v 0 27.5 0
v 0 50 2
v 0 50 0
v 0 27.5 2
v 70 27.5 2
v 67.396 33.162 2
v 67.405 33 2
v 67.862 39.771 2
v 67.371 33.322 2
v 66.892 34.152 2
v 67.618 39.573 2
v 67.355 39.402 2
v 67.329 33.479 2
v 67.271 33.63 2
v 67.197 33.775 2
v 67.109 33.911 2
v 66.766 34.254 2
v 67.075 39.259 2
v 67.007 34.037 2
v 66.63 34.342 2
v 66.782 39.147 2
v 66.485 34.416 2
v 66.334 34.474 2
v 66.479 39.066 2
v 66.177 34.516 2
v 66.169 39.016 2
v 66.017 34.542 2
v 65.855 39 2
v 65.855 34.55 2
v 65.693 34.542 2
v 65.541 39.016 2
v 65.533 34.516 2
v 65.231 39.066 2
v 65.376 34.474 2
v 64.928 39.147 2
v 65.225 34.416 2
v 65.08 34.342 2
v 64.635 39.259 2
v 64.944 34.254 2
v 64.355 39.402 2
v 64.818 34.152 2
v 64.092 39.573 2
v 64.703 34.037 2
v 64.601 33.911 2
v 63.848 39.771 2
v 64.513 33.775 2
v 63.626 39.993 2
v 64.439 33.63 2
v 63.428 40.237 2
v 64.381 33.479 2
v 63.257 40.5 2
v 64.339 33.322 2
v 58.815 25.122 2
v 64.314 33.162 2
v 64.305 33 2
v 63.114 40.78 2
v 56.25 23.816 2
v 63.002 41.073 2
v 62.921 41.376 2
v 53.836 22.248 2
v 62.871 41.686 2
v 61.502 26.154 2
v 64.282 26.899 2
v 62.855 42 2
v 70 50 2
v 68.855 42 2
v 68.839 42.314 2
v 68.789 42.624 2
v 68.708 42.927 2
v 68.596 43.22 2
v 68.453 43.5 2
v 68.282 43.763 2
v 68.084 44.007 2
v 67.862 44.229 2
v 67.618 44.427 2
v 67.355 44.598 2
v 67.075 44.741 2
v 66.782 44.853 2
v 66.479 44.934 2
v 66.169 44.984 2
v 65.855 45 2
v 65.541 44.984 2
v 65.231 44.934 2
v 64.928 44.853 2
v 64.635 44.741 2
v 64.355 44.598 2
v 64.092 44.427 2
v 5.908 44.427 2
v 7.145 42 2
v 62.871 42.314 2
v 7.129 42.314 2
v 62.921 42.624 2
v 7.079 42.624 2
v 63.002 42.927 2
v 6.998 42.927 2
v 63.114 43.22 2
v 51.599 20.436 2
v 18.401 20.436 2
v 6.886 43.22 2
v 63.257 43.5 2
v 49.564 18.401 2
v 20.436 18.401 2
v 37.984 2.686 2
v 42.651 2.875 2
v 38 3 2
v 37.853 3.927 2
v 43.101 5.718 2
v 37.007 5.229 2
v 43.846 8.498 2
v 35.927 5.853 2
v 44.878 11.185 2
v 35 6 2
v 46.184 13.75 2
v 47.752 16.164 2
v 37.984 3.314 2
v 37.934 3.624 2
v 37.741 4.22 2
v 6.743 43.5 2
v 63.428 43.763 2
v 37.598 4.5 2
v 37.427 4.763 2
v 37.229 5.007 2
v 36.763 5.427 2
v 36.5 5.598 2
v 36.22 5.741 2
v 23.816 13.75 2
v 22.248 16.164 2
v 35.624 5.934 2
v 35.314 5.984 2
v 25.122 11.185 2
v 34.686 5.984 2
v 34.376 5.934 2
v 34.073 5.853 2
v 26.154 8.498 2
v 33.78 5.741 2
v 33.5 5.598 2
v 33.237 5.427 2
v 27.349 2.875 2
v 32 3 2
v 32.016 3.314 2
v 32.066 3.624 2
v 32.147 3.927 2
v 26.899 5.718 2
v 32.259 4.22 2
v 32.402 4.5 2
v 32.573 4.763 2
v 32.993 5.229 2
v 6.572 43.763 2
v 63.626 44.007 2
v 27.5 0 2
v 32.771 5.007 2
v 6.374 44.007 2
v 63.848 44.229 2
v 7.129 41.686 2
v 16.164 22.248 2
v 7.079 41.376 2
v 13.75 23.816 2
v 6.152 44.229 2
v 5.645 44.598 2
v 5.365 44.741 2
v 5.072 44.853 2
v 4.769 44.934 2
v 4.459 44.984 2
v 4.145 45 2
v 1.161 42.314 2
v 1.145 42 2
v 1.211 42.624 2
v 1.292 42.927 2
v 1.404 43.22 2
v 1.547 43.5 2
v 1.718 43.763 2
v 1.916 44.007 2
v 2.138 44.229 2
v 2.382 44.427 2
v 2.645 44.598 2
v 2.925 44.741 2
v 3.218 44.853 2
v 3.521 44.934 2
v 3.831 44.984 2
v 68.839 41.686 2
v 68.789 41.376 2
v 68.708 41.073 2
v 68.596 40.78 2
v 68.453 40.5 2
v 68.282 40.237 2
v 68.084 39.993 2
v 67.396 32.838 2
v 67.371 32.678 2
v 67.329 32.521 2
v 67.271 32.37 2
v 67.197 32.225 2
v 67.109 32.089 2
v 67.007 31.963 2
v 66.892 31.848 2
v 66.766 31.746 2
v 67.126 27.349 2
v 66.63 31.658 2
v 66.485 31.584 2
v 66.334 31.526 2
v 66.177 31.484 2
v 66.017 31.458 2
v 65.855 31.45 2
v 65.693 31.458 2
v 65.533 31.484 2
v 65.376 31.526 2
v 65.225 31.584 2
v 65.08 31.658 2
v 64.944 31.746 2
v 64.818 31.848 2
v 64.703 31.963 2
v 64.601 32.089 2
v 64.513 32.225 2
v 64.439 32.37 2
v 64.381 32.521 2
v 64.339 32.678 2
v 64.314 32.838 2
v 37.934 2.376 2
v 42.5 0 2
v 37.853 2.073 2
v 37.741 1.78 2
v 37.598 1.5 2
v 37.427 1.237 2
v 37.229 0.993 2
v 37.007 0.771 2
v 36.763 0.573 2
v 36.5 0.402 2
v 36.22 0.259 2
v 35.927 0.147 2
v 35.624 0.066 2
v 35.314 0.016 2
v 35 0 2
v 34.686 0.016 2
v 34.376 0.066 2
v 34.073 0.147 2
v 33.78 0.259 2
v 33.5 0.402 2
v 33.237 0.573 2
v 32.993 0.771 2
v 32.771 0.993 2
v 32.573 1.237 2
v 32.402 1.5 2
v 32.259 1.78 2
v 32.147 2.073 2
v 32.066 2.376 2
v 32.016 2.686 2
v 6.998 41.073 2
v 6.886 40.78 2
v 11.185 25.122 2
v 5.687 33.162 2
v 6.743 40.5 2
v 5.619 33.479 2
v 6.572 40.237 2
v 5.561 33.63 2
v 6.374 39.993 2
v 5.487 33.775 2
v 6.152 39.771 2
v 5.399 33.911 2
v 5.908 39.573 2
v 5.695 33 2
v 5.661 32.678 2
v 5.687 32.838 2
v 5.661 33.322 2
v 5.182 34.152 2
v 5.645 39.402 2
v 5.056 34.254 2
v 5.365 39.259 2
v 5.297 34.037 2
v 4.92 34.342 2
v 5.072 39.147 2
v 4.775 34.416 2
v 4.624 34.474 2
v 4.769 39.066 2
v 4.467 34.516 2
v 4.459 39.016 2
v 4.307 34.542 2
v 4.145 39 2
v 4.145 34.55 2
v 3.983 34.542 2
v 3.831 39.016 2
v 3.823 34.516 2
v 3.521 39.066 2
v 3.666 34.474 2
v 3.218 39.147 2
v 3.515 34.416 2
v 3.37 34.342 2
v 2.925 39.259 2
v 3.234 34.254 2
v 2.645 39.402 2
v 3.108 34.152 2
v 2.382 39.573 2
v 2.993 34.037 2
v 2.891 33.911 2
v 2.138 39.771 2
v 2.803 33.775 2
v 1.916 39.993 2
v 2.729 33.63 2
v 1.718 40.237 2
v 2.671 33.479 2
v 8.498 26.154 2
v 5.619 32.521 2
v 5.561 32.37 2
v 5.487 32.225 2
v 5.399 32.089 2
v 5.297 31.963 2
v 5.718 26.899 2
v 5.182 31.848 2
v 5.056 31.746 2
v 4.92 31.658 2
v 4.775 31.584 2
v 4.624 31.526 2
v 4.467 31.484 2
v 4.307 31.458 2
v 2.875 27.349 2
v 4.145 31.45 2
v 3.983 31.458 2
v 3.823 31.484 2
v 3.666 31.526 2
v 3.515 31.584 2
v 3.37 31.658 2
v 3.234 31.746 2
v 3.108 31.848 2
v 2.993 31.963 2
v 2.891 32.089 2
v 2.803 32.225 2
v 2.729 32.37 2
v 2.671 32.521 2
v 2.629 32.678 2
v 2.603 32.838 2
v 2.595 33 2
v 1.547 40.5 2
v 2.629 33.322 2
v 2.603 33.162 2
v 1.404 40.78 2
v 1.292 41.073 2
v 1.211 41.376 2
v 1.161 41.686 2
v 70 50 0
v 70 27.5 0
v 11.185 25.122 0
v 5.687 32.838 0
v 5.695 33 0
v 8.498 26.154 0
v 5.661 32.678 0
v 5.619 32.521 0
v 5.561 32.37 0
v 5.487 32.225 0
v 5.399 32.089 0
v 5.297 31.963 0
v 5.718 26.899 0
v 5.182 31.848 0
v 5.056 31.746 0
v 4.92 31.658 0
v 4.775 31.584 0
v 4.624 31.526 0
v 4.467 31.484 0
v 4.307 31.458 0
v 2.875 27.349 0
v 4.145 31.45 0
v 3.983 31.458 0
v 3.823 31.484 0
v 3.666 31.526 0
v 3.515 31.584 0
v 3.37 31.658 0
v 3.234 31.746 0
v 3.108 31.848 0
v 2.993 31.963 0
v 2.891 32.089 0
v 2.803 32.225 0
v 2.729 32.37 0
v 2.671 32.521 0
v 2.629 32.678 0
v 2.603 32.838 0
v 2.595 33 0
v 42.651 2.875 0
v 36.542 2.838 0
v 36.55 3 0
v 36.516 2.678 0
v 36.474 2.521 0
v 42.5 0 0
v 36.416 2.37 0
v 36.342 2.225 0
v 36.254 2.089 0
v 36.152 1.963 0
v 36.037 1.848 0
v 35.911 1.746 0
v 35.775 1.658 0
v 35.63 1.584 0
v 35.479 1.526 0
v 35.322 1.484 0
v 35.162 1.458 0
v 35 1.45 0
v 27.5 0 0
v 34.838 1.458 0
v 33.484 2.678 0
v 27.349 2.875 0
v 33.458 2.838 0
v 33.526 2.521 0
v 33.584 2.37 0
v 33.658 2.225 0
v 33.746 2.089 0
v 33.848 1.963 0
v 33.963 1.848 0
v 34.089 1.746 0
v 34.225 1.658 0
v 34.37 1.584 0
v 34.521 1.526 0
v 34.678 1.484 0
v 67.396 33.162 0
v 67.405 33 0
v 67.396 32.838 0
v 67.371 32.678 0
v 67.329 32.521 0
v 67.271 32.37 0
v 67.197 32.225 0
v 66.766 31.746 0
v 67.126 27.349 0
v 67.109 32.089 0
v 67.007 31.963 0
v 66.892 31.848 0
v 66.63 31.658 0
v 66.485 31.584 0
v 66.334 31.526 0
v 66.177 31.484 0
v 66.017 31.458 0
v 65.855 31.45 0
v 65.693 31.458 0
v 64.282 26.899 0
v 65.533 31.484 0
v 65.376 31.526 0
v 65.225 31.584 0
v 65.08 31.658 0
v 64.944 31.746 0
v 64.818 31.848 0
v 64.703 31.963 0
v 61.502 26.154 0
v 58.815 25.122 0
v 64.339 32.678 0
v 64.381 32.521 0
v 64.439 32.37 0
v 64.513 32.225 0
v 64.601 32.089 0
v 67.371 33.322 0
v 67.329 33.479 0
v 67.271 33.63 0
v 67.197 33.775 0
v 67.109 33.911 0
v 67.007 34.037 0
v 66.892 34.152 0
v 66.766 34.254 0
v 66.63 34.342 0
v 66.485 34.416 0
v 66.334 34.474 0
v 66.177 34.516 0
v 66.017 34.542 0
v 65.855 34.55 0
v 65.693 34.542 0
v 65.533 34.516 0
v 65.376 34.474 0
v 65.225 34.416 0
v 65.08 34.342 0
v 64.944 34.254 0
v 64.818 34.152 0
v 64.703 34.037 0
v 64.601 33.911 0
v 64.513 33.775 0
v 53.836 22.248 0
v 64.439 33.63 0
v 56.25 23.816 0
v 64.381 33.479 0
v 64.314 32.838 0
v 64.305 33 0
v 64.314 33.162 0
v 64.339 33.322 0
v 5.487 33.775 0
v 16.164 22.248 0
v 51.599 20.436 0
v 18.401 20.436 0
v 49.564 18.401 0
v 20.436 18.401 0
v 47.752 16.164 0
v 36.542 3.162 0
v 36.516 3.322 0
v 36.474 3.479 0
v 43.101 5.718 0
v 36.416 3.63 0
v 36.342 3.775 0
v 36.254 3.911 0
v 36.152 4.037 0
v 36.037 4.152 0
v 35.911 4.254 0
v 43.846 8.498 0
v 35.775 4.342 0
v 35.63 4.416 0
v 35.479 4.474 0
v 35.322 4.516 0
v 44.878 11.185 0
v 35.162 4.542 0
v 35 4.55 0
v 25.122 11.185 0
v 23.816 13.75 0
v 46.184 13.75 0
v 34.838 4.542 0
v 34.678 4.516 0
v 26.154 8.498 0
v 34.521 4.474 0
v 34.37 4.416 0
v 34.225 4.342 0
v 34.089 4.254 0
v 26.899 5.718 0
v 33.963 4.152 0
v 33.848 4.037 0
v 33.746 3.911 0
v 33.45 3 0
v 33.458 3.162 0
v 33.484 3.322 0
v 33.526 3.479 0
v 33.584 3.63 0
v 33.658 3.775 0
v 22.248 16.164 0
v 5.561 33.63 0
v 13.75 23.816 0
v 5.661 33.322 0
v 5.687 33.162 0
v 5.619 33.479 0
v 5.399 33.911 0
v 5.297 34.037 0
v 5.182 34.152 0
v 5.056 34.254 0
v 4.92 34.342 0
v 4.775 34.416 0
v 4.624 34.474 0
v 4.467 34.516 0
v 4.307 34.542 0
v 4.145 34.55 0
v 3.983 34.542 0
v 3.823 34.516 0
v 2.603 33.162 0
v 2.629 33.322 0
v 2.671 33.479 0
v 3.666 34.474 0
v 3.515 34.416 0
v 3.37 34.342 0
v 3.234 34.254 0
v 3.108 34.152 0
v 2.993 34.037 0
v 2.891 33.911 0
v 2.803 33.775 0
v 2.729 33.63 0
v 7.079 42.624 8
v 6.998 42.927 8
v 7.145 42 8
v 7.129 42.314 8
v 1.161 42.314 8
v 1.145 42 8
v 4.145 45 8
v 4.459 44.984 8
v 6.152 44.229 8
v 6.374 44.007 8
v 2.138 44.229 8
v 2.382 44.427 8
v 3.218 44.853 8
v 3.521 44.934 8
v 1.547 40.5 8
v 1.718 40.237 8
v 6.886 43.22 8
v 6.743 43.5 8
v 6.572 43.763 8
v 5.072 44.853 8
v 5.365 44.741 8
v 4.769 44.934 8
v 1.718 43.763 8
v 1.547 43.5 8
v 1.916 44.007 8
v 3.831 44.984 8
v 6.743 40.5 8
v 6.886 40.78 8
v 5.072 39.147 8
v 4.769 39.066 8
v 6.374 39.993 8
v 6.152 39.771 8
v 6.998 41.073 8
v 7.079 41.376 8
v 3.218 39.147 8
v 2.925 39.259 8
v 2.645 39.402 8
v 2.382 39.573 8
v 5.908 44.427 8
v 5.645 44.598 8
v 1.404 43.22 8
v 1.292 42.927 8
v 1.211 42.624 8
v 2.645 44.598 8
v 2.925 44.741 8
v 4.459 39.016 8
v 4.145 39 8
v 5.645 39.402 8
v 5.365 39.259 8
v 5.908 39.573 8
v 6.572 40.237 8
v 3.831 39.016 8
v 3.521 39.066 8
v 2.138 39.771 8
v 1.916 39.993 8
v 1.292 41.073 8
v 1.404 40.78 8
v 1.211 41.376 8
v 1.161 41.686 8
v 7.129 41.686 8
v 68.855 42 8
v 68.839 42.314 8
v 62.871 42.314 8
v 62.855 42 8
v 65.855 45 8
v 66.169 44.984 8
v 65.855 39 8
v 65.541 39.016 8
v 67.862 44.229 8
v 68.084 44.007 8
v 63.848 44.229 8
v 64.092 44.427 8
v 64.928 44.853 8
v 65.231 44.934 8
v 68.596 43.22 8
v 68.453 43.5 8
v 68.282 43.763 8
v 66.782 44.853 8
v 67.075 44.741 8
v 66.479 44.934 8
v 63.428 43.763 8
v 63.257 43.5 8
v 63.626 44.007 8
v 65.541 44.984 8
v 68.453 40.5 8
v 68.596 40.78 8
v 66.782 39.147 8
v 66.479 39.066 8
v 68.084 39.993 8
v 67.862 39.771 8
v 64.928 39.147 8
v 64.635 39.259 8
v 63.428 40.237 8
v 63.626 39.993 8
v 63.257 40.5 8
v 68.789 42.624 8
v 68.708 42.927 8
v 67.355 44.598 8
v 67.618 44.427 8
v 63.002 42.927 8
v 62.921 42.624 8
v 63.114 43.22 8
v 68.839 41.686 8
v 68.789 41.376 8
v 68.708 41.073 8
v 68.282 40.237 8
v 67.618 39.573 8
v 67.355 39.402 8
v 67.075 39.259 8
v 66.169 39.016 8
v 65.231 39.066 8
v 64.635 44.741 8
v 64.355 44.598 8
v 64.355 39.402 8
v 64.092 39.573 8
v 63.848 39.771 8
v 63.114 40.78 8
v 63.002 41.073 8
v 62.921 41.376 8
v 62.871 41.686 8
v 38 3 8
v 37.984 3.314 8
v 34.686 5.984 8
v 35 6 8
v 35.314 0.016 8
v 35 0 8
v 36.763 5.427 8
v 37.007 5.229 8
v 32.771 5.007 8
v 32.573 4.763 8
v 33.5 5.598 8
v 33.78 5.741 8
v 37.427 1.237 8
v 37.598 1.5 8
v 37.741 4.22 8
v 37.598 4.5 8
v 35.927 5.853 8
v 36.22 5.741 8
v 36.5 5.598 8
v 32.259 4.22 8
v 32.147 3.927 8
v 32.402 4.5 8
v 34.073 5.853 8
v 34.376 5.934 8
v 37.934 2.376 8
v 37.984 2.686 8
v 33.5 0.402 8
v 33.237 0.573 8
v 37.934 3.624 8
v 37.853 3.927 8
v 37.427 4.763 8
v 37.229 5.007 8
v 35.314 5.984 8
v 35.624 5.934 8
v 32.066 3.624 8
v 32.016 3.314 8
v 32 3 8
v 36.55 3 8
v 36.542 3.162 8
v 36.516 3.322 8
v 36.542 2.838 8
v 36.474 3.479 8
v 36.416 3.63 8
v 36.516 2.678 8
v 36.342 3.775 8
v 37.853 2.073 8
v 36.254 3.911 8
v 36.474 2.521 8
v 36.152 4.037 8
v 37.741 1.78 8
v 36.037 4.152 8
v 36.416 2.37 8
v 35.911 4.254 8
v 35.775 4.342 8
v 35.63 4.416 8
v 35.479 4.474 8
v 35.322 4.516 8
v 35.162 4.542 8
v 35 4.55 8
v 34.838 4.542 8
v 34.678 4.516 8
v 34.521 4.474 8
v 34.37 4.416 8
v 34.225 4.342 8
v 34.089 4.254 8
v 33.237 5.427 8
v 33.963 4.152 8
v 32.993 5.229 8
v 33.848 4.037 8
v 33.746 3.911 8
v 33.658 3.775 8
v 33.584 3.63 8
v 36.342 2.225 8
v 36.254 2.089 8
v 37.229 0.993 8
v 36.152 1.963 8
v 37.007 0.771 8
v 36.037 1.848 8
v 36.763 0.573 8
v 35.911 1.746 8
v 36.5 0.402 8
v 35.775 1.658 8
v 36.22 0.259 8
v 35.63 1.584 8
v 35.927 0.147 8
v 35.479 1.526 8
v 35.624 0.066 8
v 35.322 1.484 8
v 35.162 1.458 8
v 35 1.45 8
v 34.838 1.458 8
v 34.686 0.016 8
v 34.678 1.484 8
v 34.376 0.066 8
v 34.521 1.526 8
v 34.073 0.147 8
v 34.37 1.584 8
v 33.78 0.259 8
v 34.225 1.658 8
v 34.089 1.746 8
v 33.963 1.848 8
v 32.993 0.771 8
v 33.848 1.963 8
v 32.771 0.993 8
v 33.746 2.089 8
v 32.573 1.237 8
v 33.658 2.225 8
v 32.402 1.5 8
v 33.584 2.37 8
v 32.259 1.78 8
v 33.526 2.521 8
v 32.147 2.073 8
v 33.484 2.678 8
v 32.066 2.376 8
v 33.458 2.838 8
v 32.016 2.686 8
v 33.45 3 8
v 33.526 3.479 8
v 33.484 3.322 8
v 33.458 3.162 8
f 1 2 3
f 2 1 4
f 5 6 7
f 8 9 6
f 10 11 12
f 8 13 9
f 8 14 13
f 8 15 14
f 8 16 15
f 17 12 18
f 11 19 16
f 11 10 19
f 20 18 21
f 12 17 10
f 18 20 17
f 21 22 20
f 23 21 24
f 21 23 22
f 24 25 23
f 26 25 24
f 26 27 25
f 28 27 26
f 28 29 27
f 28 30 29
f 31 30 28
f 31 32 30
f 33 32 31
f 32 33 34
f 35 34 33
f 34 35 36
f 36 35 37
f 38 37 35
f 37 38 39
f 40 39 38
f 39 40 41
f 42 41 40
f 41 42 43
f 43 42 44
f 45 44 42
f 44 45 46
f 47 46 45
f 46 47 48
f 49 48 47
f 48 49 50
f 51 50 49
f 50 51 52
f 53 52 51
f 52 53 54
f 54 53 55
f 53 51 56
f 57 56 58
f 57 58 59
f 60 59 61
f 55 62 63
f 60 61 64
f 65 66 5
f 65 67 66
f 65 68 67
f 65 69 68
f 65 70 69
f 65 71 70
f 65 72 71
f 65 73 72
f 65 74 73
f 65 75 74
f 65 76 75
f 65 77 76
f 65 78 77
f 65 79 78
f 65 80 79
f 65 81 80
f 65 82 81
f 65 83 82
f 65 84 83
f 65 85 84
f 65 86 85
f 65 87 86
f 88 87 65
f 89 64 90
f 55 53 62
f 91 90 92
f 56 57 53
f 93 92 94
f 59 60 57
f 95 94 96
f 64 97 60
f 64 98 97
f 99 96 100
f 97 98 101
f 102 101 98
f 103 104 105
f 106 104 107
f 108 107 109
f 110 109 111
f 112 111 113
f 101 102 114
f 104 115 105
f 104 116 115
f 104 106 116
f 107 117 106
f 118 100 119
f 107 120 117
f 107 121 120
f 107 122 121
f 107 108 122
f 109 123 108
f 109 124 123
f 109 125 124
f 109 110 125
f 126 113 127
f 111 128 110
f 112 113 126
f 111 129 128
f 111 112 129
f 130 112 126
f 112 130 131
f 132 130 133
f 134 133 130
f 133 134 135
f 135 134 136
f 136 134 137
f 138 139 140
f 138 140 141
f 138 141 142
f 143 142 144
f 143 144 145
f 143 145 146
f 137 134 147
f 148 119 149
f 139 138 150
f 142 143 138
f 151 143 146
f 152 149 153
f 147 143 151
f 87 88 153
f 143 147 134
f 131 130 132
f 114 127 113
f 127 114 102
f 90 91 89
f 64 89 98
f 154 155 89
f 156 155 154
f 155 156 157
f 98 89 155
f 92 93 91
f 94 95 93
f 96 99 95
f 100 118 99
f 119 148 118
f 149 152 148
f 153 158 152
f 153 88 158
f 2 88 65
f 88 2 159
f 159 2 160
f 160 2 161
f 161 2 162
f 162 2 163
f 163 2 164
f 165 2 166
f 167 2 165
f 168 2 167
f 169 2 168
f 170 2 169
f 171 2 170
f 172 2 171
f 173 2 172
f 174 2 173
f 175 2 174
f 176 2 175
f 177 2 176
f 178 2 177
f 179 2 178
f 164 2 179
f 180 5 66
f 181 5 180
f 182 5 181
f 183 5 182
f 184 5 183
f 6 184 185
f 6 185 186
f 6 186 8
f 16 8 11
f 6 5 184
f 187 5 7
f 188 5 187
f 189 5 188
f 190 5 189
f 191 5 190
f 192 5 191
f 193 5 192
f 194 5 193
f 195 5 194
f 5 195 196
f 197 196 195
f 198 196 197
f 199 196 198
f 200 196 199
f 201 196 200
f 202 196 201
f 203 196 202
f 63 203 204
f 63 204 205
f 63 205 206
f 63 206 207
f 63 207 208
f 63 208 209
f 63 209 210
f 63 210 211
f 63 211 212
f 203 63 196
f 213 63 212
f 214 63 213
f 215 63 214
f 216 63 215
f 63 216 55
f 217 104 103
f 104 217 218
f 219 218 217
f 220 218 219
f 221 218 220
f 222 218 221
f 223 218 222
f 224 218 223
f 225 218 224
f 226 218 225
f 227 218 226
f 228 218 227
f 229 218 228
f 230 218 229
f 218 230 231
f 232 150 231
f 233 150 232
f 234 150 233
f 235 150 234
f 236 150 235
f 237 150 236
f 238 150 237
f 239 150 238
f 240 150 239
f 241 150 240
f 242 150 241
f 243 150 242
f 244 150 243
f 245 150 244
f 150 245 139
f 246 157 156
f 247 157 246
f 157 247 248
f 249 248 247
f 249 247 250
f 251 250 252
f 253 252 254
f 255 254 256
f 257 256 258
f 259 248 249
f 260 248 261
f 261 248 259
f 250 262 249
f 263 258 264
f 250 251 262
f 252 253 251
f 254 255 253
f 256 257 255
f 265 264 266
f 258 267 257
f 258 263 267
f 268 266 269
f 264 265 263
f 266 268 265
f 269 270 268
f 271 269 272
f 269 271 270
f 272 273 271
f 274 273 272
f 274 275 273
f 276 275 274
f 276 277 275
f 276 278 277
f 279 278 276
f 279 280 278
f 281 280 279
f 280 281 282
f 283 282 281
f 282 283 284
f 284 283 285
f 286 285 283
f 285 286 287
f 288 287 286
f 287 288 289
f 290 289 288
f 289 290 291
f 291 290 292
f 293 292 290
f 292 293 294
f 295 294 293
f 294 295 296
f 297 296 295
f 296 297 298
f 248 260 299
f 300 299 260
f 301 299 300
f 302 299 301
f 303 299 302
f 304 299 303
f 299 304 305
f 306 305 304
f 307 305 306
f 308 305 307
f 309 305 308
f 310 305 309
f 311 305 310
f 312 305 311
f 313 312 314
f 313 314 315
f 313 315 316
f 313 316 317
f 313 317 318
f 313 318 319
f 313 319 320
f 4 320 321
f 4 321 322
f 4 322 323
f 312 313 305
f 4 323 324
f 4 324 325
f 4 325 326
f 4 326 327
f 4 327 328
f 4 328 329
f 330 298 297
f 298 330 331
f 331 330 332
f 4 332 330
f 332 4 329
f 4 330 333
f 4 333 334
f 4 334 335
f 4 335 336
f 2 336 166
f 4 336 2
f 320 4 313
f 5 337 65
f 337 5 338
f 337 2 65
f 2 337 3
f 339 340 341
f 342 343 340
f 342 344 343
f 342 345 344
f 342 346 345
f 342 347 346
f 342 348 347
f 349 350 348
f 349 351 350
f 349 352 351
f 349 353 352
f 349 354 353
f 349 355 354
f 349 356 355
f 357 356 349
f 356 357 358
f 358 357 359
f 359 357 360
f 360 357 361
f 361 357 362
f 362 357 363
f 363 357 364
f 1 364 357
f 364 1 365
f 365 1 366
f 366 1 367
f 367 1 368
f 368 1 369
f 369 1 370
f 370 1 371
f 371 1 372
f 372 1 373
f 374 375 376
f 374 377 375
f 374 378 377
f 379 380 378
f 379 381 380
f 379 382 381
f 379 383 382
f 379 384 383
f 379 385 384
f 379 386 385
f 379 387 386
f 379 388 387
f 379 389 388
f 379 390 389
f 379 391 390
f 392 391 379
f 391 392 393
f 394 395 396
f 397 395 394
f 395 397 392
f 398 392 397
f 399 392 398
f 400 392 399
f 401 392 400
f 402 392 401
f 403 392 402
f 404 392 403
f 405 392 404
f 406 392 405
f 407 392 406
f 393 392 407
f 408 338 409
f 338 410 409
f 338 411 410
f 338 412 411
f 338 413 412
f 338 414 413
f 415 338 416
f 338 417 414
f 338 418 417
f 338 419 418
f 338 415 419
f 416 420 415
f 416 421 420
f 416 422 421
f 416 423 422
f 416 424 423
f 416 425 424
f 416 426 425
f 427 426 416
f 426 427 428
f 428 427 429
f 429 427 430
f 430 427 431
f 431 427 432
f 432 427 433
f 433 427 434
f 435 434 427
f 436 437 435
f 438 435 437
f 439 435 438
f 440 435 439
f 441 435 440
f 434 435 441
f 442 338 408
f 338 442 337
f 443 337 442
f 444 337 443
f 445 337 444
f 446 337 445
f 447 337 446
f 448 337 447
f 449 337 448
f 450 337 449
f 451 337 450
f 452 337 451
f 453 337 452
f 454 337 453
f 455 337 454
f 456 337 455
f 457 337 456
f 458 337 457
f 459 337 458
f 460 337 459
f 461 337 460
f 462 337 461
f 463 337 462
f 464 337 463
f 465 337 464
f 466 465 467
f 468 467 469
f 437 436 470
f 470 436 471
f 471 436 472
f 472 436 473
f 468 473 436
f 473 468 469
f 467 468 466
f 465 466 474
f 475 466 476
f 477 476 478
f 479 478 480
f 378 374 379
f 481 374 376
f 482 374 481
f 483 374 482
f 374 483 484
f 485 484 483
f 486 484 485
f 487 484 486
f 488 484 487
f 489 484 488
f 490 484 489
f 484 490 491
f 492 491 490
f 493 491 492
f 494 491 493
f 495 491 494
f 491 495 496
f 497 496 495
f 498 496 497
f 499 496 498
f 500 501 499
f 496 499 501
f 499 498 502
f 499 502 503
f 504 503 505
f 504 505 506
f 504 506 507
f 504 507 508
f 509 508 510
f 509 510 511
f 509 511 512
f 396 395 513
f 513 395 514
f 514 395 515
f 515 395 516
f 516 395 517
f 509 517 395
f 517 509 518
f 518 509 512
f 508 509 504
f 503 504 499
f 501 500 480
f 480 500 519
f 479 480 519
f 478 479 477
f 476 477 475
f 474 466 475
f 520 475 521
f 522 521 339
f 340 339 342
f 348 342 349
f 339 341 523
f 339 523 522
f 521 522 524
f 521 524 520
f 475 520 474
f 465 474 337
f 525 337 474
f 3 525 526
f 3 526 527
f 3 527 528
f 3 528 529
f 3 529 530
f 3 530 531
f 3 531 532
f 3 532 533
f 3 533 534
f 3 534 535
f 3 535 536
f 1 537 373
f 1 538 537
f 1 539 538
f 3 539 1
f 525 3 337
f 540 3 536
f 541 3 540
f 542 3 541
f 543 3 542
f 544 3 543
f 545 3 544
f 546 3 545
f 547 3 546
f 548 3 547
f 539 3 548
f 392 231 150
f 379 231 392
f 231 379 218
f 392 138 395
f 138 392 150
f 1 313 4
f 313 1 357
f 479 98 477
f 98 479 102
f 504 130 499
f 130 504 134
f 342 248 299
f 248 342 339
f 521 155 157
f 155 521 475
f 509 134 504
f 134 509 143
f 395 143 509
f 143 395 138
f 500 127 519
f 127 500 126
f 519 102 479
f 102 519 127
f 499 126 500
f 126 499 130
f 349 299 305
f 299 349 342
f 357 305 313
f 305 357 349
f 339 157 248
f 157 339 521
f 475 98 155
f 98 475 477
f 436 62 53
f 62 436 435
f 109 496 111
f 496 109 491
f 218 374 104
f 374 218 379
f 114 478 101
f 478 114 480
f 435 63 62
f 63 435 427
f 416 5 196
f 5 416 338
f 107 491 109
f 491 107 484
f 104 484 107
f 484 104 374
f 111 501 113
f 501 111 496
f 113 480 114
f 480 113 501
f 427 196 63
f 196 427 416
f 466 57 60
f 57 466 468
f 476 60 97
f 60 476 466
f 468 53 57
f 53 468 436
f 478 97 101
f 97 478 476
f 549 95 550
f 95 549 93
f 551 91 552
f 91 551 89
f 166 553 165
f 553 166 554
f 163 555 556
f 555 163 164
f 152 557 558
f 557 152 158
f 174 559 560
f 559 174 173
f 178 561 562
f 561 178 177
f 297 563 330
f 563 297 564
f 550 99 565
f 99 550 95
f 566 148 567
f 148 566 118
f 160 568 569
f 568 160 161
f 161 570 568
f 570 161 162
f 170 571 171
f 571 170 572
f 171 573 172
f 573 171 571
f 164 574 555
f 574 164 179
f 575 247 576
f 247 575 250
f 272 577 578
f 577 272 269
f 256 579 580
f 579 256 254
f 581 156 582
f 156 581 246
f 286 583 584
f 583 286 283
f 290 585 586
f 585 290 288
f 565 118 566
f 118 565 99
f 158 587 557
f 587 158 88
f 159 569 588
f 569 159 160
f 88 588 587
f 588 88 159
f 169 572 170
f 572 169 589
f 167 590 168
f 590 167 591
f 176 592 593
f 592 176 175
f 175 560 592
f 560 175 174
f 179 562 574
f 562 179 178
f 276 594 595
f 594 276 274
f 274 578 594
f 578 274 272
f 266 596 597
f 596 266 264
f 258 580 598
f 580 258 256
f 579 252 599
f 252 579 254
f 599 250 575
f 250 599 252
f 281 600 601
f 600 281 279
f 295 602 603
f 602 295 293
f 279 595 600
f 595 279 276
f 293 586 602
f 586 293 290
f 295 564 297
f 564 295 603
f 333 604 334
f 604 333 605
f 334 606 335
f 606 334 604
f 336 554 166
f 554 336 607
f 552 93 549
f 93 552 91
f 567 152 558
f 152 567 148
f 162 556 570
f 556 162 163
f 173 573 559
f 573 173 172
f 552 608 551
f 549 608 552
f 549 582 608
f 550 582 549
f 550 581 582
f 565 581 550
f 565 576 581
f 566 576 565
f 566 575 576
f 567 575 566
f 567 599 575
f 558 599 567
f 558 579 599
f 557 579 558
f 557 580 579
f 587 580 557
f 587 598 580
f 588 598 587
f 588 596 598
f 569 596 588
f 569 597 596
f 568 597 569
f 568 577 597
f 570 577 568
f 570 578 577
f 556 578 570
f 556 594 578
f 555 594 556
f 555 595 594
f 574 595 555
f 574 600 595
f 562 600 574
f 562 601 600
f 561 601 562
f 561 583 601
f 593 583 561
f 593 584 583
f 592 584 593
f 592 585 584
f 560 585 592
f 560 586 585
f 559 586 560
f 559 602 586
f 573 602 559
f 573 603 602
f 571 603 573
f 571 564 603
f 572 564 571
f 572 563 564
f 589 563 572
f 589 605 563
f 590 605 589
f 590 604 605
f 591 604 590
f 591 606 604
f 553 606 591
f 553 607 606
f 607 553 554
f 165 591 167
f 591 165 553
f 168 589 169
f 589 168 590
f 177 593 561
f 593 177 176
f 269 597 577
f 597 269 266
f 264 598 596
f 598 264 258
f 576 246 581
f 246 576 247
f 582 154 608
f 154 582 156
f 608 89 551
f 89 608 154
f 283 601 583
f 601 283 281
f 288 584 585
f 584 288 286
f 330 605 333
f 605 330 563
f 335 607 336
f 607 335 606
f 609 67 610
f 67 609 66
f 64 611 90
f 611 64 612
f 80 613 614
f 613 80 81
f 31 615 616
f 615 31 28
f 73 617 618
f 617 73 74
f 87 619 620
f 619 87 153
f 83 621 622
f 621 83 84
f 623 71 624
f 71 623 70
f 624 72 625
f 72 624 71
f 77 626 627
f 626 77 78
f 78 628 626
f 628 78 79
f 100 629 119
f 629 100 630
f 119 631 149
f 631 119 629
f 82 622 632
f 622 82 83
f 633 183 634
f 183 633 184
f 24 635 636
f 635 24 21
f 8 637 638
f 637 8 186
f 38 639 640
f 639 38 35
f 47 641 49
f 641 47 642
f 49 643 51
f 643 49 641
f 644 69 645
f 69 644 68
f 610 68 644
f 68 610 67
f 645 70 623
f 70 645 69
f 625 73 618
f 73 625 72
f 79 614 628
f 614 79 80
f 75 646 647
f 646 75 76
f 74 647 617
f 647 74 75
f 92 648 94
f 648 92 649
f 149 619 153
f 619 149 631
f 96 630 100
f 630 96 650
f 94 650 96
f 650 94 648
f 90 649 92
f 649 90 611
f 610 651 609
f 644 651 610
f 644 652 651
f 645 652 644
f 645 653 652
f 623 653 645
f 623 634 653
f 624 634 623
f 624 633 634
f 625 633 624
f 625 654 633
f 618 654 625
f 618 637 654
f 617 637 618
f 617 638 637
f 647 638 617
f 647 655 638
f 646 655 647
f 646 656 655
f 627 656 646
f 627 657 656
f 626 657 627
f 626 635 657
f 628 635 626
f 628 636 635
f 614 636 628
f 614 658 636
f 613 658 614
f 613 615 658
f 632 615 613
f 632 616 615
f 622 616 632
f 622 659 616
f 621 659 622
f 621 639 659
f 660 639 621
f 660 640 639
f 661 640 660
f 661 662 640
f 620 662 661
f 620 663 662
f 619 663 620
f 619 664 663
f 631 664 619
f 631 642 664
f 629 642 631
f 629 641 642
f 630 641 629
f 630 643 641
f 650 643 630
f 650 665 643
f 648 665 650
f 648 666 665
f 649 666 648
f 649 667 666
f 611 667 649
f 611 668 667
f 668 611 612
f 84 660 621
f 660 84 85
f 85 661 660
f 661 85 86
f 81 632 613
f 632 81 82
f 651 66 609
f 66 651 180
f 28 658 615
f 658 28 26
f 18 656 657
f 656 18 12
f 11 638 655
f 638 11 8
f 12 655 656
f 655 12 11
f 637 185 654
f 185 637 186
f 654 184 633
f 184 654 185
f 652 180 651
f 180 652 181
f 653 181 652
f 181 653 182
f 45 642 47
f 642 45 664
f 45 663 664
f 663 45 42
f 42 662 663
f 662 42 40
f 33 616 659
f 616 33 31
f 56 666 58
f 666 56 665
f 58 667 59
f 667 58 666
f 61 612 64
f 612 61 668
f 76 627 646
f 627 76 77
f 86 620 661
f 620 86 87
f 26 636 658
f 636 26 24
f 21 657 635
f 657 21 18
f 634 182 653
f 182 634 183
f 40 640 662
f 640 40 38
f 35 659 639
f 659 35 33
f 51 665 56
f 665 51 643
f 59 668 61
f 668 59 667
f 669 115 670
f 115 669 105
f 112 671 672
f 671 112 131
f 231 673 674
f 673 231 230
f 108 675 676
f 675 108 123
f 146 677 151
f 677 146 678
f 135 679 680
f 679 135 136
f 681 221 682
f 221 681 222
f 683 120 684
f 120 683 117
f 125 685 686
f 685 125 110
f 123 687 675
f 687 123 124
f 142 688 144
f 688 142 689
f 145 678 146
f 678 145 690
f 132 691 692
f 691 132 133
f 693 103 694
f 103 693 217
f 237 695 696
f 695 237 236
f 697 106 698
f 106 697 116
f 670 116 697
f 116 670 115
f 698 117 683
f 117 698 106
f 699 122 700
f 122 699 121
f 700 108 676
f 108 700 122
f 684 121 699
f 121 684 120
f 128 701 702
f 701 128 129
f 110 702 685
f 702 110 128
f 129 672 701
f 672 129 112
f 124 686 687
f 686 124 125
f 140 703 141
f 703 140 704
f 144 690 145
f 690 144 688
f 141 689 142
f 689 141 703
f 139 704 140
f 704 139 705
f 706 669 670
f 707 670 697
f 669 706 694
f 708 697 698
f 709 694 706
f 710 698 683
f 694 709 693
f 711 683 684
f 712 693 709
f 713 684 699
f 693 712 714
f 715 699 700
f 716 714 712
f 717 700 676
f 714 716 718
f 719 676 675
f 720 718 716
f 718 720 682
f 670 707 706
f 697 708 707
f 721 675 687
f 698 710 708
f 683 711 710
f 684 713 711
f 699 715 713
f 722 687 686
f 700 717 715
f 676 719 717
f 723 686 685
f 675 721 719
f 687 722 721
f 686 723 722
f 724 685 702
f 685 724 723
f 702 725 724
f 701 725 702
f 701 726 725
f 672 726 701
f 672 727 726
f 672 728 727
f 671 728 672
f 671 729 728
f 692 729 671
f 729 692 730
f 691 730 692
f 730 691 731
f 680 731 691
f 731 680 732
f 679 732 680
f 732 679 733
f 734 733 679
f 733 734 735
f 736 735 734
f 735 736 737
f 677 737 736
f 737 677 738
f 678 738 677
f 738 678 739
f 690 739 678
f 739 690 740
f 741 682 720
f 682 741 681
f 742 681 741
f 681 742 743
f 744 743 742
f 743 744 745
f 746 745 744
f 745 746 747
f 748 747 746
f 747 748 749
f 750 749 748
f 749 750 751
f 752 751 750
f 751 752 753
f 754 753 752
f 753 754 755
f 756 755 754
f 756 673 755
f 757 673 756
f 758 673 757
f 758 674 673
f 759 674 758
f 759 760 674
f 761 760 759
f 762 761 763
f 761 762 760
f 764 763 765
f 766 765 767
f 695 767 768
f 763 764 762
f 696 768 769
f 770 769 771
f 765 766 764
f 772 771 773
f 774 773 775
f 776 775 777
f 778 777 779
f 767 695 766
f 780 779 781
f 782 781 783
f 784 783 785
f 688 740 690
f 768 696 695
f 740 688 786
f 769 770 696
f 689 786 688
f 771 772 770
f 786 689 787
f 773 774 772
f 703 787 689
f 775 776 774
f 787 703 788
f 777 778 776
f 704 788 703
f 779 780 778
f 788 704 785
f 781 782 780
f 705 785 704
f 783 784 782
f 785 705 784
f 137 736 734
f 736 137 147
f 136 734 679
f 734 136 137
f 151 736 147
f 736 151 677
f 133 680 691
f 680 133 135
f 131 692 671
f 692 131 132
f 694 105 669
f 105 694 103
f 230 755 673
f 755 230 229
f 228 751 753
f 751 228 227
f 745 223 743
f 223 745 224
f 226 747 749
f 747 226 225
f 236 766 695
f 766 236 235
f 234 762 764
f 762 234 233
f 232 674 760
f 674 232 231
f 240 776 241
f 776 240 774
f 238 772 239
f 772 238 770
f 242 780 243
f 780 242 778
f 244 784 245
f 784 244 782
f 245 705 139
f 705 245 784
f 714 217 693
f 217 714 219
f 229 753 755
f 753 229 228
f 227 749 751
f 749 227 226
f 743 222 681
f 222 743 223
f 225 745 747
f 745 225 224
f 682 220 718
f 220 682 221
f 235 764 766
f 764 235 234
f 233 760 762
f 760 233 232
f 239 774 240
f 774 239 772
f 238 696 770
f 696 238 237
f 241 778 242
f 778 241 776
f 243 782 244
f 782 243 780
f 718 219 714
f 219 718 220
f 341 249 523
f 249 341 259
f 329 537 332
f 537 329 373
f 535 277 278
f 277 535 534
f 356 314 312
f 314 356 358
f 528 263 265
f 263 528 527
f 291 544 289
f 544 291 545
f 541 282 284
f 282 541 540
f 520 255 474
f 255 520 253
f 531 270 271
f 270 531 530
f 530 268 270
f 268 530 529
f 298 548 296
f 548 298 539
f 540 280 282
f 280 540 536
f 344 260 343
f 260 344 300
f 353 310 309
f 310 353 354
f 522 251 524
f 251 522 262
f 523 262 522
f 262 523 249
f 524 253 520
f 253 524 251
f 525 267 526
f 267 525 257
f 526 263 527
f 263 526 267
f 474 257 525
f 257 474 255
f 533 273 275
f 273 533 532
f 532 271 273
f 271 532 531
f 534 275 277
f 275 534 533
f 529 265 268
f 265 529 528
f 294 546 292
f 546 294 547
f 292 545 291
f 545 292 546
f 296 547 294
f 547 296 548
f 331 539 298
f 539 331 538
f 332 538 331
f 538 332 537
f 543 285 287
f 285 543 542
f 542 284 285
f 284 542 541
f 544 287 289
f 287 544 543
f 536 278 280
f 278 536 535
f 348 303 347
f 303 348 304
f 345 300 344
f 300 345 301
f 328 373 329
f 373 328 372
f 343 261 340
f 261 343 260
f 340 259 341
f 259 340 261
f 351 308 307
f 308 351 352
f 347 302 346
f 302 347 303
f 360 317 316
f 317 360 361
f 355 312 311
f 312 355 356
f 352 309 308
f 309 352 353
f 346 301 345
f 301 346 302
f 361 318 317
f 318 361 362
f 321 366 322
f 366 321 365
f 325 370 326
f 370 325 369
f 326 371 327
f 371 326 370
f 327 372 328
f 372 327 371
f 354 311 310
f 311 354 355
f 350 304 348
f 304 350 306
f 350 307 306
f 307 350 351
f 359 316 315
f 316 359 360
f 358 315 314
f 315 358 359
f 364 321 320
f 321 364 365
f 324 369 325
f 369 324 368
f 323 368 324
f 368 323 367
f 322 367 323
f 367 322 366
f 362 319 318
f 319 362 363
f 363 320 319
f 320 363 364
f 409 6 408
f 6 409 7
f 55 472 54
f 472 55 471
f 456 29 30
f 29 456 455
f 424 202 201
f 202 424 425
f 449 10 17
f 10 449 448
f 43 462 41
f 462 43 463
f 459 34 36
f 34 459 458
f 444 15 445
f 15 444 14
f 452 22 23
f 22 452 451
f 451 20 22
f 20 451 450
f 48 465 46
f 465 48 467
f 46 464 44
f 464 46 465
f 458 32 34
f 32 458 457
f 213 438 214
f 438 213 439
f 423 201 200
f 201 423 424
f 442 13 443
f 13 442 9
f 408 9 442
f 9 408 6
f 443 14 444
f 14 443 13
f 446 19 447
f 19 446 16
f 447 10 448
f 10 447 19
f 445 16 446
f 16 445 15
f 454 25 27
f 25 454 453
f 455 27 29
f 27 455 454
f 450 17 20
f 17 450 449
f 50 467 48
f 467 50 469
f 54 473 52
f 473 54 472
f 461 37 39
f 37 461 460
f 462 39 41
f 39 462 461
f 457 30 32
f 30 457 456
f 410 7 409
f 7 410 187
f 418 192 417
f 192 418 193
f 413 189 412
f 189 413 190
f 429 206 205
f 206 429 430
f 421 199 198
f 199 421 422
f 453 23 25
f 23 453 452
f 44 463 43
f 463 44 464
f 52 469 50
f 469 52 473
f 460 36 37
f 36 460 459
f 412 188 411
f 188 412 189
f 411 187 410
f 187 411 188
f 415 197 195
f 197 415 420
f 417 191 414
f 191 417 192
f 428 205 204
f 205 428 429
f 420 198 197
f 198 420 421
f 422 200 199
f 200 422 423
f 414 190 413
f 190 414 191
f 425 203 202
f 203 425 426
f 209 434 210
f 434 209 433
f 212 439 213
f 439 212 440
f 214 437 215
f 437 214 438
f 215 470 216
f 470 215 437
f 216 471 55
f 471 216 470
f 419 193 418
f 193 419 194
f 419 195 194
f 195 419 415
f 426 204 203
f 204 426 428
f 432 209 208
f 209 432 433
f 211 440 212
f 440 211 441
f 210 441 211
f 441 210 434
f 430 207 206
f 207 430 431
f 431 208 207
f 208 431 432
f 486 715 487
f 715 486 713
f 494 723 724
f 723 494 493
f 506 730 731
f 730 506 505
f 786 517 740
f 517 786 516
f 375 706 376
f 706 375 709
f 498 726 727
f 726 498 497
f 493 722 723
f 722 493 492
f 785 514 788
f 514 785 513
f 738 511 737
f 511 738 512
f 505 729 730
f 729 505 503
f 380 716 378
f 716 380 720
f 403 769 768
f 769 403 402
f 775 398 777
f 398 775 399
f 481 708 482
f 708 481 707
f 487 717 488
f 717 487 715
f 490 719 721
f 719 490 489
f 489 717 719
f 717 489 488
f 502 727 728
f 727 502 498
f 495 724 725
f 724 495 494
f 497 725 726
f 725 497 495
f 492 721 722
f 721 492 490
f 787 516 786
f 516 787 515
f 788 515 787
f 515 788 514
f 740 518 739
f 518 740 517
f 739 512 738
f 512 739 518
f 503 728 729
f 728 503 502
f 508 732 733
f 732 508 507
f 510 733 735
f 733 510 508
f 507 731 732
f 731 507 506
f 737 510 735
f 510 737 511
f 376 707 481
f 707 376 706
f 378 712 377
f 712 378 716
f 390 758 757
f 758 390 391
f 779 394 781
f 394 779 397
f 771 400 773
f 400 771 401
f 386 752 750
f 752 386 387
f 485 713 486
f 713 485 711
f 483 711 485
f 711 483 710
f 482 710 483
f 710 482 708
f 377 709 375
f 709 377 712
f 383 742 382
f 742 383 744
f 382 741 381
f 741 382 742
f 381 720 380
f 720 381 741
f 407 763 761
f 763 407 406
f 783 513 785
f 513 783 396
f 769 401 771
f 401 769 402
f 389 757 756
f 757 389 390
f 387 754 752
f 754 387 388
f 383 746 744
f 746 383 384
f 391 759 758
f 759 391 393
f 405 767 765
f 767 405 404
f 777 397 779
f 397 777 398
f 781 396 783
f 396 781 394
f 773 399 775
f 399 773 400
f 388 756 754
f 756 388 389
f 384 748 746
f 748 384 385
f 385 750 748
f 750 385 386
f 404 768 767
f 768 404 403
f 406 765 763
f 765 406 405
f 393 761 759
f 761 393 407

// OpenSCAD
/* 
 SATA bracket 
 for mounting a 2.5" SATA drive 
 in a hp t610 plus thin client
*/

$fn=60;

// size of baseplate/tray
tray_width = 70;
tray_length = 50;
baseplate_height = 2.0;
spacer_height = 8.0;
spacer_diam = 6.0;

// mounting screws
screwdist = 61.71;
screwdiam = 3.1;

module baseplate() {
    union() {
        // base plate
        difference() {
            cube([	tray_width, tray_length, baseplate_height]);
            cylinder(h=baseplate_height, d=55);
            translate([tray_width, 0, 0]){
                cylinder(h=baseplate_height, d=55);
            }
        }
        // spacers
        translate([(tray_width-screwdist)/2, 42, 0]){
            spacer();
            translate([screwdist, 0, 0]){
                spacer();
            };
        };
        translate([tray_width/2, spacer_diam/2, 0]){
            spacer();
        }
    }
}

module spacer () {
    cylinder(h=spacer_height, d=spacer_diam);
} 

module hole () {
    cylinder(h=spacer_height, d=screwdiam);
}

difference(){
    baseplate();
    translate([0, spacer_diam/2, 0]){
        translate([tray_width/2, 0, 0]){
            hole();
        };
        translate([(tray_width-screwdist)/2, 30, 0]){
            hole();
            translate([screwdist, 0, 0]){
                hole();
            };
        };
    }
}

//EOF
